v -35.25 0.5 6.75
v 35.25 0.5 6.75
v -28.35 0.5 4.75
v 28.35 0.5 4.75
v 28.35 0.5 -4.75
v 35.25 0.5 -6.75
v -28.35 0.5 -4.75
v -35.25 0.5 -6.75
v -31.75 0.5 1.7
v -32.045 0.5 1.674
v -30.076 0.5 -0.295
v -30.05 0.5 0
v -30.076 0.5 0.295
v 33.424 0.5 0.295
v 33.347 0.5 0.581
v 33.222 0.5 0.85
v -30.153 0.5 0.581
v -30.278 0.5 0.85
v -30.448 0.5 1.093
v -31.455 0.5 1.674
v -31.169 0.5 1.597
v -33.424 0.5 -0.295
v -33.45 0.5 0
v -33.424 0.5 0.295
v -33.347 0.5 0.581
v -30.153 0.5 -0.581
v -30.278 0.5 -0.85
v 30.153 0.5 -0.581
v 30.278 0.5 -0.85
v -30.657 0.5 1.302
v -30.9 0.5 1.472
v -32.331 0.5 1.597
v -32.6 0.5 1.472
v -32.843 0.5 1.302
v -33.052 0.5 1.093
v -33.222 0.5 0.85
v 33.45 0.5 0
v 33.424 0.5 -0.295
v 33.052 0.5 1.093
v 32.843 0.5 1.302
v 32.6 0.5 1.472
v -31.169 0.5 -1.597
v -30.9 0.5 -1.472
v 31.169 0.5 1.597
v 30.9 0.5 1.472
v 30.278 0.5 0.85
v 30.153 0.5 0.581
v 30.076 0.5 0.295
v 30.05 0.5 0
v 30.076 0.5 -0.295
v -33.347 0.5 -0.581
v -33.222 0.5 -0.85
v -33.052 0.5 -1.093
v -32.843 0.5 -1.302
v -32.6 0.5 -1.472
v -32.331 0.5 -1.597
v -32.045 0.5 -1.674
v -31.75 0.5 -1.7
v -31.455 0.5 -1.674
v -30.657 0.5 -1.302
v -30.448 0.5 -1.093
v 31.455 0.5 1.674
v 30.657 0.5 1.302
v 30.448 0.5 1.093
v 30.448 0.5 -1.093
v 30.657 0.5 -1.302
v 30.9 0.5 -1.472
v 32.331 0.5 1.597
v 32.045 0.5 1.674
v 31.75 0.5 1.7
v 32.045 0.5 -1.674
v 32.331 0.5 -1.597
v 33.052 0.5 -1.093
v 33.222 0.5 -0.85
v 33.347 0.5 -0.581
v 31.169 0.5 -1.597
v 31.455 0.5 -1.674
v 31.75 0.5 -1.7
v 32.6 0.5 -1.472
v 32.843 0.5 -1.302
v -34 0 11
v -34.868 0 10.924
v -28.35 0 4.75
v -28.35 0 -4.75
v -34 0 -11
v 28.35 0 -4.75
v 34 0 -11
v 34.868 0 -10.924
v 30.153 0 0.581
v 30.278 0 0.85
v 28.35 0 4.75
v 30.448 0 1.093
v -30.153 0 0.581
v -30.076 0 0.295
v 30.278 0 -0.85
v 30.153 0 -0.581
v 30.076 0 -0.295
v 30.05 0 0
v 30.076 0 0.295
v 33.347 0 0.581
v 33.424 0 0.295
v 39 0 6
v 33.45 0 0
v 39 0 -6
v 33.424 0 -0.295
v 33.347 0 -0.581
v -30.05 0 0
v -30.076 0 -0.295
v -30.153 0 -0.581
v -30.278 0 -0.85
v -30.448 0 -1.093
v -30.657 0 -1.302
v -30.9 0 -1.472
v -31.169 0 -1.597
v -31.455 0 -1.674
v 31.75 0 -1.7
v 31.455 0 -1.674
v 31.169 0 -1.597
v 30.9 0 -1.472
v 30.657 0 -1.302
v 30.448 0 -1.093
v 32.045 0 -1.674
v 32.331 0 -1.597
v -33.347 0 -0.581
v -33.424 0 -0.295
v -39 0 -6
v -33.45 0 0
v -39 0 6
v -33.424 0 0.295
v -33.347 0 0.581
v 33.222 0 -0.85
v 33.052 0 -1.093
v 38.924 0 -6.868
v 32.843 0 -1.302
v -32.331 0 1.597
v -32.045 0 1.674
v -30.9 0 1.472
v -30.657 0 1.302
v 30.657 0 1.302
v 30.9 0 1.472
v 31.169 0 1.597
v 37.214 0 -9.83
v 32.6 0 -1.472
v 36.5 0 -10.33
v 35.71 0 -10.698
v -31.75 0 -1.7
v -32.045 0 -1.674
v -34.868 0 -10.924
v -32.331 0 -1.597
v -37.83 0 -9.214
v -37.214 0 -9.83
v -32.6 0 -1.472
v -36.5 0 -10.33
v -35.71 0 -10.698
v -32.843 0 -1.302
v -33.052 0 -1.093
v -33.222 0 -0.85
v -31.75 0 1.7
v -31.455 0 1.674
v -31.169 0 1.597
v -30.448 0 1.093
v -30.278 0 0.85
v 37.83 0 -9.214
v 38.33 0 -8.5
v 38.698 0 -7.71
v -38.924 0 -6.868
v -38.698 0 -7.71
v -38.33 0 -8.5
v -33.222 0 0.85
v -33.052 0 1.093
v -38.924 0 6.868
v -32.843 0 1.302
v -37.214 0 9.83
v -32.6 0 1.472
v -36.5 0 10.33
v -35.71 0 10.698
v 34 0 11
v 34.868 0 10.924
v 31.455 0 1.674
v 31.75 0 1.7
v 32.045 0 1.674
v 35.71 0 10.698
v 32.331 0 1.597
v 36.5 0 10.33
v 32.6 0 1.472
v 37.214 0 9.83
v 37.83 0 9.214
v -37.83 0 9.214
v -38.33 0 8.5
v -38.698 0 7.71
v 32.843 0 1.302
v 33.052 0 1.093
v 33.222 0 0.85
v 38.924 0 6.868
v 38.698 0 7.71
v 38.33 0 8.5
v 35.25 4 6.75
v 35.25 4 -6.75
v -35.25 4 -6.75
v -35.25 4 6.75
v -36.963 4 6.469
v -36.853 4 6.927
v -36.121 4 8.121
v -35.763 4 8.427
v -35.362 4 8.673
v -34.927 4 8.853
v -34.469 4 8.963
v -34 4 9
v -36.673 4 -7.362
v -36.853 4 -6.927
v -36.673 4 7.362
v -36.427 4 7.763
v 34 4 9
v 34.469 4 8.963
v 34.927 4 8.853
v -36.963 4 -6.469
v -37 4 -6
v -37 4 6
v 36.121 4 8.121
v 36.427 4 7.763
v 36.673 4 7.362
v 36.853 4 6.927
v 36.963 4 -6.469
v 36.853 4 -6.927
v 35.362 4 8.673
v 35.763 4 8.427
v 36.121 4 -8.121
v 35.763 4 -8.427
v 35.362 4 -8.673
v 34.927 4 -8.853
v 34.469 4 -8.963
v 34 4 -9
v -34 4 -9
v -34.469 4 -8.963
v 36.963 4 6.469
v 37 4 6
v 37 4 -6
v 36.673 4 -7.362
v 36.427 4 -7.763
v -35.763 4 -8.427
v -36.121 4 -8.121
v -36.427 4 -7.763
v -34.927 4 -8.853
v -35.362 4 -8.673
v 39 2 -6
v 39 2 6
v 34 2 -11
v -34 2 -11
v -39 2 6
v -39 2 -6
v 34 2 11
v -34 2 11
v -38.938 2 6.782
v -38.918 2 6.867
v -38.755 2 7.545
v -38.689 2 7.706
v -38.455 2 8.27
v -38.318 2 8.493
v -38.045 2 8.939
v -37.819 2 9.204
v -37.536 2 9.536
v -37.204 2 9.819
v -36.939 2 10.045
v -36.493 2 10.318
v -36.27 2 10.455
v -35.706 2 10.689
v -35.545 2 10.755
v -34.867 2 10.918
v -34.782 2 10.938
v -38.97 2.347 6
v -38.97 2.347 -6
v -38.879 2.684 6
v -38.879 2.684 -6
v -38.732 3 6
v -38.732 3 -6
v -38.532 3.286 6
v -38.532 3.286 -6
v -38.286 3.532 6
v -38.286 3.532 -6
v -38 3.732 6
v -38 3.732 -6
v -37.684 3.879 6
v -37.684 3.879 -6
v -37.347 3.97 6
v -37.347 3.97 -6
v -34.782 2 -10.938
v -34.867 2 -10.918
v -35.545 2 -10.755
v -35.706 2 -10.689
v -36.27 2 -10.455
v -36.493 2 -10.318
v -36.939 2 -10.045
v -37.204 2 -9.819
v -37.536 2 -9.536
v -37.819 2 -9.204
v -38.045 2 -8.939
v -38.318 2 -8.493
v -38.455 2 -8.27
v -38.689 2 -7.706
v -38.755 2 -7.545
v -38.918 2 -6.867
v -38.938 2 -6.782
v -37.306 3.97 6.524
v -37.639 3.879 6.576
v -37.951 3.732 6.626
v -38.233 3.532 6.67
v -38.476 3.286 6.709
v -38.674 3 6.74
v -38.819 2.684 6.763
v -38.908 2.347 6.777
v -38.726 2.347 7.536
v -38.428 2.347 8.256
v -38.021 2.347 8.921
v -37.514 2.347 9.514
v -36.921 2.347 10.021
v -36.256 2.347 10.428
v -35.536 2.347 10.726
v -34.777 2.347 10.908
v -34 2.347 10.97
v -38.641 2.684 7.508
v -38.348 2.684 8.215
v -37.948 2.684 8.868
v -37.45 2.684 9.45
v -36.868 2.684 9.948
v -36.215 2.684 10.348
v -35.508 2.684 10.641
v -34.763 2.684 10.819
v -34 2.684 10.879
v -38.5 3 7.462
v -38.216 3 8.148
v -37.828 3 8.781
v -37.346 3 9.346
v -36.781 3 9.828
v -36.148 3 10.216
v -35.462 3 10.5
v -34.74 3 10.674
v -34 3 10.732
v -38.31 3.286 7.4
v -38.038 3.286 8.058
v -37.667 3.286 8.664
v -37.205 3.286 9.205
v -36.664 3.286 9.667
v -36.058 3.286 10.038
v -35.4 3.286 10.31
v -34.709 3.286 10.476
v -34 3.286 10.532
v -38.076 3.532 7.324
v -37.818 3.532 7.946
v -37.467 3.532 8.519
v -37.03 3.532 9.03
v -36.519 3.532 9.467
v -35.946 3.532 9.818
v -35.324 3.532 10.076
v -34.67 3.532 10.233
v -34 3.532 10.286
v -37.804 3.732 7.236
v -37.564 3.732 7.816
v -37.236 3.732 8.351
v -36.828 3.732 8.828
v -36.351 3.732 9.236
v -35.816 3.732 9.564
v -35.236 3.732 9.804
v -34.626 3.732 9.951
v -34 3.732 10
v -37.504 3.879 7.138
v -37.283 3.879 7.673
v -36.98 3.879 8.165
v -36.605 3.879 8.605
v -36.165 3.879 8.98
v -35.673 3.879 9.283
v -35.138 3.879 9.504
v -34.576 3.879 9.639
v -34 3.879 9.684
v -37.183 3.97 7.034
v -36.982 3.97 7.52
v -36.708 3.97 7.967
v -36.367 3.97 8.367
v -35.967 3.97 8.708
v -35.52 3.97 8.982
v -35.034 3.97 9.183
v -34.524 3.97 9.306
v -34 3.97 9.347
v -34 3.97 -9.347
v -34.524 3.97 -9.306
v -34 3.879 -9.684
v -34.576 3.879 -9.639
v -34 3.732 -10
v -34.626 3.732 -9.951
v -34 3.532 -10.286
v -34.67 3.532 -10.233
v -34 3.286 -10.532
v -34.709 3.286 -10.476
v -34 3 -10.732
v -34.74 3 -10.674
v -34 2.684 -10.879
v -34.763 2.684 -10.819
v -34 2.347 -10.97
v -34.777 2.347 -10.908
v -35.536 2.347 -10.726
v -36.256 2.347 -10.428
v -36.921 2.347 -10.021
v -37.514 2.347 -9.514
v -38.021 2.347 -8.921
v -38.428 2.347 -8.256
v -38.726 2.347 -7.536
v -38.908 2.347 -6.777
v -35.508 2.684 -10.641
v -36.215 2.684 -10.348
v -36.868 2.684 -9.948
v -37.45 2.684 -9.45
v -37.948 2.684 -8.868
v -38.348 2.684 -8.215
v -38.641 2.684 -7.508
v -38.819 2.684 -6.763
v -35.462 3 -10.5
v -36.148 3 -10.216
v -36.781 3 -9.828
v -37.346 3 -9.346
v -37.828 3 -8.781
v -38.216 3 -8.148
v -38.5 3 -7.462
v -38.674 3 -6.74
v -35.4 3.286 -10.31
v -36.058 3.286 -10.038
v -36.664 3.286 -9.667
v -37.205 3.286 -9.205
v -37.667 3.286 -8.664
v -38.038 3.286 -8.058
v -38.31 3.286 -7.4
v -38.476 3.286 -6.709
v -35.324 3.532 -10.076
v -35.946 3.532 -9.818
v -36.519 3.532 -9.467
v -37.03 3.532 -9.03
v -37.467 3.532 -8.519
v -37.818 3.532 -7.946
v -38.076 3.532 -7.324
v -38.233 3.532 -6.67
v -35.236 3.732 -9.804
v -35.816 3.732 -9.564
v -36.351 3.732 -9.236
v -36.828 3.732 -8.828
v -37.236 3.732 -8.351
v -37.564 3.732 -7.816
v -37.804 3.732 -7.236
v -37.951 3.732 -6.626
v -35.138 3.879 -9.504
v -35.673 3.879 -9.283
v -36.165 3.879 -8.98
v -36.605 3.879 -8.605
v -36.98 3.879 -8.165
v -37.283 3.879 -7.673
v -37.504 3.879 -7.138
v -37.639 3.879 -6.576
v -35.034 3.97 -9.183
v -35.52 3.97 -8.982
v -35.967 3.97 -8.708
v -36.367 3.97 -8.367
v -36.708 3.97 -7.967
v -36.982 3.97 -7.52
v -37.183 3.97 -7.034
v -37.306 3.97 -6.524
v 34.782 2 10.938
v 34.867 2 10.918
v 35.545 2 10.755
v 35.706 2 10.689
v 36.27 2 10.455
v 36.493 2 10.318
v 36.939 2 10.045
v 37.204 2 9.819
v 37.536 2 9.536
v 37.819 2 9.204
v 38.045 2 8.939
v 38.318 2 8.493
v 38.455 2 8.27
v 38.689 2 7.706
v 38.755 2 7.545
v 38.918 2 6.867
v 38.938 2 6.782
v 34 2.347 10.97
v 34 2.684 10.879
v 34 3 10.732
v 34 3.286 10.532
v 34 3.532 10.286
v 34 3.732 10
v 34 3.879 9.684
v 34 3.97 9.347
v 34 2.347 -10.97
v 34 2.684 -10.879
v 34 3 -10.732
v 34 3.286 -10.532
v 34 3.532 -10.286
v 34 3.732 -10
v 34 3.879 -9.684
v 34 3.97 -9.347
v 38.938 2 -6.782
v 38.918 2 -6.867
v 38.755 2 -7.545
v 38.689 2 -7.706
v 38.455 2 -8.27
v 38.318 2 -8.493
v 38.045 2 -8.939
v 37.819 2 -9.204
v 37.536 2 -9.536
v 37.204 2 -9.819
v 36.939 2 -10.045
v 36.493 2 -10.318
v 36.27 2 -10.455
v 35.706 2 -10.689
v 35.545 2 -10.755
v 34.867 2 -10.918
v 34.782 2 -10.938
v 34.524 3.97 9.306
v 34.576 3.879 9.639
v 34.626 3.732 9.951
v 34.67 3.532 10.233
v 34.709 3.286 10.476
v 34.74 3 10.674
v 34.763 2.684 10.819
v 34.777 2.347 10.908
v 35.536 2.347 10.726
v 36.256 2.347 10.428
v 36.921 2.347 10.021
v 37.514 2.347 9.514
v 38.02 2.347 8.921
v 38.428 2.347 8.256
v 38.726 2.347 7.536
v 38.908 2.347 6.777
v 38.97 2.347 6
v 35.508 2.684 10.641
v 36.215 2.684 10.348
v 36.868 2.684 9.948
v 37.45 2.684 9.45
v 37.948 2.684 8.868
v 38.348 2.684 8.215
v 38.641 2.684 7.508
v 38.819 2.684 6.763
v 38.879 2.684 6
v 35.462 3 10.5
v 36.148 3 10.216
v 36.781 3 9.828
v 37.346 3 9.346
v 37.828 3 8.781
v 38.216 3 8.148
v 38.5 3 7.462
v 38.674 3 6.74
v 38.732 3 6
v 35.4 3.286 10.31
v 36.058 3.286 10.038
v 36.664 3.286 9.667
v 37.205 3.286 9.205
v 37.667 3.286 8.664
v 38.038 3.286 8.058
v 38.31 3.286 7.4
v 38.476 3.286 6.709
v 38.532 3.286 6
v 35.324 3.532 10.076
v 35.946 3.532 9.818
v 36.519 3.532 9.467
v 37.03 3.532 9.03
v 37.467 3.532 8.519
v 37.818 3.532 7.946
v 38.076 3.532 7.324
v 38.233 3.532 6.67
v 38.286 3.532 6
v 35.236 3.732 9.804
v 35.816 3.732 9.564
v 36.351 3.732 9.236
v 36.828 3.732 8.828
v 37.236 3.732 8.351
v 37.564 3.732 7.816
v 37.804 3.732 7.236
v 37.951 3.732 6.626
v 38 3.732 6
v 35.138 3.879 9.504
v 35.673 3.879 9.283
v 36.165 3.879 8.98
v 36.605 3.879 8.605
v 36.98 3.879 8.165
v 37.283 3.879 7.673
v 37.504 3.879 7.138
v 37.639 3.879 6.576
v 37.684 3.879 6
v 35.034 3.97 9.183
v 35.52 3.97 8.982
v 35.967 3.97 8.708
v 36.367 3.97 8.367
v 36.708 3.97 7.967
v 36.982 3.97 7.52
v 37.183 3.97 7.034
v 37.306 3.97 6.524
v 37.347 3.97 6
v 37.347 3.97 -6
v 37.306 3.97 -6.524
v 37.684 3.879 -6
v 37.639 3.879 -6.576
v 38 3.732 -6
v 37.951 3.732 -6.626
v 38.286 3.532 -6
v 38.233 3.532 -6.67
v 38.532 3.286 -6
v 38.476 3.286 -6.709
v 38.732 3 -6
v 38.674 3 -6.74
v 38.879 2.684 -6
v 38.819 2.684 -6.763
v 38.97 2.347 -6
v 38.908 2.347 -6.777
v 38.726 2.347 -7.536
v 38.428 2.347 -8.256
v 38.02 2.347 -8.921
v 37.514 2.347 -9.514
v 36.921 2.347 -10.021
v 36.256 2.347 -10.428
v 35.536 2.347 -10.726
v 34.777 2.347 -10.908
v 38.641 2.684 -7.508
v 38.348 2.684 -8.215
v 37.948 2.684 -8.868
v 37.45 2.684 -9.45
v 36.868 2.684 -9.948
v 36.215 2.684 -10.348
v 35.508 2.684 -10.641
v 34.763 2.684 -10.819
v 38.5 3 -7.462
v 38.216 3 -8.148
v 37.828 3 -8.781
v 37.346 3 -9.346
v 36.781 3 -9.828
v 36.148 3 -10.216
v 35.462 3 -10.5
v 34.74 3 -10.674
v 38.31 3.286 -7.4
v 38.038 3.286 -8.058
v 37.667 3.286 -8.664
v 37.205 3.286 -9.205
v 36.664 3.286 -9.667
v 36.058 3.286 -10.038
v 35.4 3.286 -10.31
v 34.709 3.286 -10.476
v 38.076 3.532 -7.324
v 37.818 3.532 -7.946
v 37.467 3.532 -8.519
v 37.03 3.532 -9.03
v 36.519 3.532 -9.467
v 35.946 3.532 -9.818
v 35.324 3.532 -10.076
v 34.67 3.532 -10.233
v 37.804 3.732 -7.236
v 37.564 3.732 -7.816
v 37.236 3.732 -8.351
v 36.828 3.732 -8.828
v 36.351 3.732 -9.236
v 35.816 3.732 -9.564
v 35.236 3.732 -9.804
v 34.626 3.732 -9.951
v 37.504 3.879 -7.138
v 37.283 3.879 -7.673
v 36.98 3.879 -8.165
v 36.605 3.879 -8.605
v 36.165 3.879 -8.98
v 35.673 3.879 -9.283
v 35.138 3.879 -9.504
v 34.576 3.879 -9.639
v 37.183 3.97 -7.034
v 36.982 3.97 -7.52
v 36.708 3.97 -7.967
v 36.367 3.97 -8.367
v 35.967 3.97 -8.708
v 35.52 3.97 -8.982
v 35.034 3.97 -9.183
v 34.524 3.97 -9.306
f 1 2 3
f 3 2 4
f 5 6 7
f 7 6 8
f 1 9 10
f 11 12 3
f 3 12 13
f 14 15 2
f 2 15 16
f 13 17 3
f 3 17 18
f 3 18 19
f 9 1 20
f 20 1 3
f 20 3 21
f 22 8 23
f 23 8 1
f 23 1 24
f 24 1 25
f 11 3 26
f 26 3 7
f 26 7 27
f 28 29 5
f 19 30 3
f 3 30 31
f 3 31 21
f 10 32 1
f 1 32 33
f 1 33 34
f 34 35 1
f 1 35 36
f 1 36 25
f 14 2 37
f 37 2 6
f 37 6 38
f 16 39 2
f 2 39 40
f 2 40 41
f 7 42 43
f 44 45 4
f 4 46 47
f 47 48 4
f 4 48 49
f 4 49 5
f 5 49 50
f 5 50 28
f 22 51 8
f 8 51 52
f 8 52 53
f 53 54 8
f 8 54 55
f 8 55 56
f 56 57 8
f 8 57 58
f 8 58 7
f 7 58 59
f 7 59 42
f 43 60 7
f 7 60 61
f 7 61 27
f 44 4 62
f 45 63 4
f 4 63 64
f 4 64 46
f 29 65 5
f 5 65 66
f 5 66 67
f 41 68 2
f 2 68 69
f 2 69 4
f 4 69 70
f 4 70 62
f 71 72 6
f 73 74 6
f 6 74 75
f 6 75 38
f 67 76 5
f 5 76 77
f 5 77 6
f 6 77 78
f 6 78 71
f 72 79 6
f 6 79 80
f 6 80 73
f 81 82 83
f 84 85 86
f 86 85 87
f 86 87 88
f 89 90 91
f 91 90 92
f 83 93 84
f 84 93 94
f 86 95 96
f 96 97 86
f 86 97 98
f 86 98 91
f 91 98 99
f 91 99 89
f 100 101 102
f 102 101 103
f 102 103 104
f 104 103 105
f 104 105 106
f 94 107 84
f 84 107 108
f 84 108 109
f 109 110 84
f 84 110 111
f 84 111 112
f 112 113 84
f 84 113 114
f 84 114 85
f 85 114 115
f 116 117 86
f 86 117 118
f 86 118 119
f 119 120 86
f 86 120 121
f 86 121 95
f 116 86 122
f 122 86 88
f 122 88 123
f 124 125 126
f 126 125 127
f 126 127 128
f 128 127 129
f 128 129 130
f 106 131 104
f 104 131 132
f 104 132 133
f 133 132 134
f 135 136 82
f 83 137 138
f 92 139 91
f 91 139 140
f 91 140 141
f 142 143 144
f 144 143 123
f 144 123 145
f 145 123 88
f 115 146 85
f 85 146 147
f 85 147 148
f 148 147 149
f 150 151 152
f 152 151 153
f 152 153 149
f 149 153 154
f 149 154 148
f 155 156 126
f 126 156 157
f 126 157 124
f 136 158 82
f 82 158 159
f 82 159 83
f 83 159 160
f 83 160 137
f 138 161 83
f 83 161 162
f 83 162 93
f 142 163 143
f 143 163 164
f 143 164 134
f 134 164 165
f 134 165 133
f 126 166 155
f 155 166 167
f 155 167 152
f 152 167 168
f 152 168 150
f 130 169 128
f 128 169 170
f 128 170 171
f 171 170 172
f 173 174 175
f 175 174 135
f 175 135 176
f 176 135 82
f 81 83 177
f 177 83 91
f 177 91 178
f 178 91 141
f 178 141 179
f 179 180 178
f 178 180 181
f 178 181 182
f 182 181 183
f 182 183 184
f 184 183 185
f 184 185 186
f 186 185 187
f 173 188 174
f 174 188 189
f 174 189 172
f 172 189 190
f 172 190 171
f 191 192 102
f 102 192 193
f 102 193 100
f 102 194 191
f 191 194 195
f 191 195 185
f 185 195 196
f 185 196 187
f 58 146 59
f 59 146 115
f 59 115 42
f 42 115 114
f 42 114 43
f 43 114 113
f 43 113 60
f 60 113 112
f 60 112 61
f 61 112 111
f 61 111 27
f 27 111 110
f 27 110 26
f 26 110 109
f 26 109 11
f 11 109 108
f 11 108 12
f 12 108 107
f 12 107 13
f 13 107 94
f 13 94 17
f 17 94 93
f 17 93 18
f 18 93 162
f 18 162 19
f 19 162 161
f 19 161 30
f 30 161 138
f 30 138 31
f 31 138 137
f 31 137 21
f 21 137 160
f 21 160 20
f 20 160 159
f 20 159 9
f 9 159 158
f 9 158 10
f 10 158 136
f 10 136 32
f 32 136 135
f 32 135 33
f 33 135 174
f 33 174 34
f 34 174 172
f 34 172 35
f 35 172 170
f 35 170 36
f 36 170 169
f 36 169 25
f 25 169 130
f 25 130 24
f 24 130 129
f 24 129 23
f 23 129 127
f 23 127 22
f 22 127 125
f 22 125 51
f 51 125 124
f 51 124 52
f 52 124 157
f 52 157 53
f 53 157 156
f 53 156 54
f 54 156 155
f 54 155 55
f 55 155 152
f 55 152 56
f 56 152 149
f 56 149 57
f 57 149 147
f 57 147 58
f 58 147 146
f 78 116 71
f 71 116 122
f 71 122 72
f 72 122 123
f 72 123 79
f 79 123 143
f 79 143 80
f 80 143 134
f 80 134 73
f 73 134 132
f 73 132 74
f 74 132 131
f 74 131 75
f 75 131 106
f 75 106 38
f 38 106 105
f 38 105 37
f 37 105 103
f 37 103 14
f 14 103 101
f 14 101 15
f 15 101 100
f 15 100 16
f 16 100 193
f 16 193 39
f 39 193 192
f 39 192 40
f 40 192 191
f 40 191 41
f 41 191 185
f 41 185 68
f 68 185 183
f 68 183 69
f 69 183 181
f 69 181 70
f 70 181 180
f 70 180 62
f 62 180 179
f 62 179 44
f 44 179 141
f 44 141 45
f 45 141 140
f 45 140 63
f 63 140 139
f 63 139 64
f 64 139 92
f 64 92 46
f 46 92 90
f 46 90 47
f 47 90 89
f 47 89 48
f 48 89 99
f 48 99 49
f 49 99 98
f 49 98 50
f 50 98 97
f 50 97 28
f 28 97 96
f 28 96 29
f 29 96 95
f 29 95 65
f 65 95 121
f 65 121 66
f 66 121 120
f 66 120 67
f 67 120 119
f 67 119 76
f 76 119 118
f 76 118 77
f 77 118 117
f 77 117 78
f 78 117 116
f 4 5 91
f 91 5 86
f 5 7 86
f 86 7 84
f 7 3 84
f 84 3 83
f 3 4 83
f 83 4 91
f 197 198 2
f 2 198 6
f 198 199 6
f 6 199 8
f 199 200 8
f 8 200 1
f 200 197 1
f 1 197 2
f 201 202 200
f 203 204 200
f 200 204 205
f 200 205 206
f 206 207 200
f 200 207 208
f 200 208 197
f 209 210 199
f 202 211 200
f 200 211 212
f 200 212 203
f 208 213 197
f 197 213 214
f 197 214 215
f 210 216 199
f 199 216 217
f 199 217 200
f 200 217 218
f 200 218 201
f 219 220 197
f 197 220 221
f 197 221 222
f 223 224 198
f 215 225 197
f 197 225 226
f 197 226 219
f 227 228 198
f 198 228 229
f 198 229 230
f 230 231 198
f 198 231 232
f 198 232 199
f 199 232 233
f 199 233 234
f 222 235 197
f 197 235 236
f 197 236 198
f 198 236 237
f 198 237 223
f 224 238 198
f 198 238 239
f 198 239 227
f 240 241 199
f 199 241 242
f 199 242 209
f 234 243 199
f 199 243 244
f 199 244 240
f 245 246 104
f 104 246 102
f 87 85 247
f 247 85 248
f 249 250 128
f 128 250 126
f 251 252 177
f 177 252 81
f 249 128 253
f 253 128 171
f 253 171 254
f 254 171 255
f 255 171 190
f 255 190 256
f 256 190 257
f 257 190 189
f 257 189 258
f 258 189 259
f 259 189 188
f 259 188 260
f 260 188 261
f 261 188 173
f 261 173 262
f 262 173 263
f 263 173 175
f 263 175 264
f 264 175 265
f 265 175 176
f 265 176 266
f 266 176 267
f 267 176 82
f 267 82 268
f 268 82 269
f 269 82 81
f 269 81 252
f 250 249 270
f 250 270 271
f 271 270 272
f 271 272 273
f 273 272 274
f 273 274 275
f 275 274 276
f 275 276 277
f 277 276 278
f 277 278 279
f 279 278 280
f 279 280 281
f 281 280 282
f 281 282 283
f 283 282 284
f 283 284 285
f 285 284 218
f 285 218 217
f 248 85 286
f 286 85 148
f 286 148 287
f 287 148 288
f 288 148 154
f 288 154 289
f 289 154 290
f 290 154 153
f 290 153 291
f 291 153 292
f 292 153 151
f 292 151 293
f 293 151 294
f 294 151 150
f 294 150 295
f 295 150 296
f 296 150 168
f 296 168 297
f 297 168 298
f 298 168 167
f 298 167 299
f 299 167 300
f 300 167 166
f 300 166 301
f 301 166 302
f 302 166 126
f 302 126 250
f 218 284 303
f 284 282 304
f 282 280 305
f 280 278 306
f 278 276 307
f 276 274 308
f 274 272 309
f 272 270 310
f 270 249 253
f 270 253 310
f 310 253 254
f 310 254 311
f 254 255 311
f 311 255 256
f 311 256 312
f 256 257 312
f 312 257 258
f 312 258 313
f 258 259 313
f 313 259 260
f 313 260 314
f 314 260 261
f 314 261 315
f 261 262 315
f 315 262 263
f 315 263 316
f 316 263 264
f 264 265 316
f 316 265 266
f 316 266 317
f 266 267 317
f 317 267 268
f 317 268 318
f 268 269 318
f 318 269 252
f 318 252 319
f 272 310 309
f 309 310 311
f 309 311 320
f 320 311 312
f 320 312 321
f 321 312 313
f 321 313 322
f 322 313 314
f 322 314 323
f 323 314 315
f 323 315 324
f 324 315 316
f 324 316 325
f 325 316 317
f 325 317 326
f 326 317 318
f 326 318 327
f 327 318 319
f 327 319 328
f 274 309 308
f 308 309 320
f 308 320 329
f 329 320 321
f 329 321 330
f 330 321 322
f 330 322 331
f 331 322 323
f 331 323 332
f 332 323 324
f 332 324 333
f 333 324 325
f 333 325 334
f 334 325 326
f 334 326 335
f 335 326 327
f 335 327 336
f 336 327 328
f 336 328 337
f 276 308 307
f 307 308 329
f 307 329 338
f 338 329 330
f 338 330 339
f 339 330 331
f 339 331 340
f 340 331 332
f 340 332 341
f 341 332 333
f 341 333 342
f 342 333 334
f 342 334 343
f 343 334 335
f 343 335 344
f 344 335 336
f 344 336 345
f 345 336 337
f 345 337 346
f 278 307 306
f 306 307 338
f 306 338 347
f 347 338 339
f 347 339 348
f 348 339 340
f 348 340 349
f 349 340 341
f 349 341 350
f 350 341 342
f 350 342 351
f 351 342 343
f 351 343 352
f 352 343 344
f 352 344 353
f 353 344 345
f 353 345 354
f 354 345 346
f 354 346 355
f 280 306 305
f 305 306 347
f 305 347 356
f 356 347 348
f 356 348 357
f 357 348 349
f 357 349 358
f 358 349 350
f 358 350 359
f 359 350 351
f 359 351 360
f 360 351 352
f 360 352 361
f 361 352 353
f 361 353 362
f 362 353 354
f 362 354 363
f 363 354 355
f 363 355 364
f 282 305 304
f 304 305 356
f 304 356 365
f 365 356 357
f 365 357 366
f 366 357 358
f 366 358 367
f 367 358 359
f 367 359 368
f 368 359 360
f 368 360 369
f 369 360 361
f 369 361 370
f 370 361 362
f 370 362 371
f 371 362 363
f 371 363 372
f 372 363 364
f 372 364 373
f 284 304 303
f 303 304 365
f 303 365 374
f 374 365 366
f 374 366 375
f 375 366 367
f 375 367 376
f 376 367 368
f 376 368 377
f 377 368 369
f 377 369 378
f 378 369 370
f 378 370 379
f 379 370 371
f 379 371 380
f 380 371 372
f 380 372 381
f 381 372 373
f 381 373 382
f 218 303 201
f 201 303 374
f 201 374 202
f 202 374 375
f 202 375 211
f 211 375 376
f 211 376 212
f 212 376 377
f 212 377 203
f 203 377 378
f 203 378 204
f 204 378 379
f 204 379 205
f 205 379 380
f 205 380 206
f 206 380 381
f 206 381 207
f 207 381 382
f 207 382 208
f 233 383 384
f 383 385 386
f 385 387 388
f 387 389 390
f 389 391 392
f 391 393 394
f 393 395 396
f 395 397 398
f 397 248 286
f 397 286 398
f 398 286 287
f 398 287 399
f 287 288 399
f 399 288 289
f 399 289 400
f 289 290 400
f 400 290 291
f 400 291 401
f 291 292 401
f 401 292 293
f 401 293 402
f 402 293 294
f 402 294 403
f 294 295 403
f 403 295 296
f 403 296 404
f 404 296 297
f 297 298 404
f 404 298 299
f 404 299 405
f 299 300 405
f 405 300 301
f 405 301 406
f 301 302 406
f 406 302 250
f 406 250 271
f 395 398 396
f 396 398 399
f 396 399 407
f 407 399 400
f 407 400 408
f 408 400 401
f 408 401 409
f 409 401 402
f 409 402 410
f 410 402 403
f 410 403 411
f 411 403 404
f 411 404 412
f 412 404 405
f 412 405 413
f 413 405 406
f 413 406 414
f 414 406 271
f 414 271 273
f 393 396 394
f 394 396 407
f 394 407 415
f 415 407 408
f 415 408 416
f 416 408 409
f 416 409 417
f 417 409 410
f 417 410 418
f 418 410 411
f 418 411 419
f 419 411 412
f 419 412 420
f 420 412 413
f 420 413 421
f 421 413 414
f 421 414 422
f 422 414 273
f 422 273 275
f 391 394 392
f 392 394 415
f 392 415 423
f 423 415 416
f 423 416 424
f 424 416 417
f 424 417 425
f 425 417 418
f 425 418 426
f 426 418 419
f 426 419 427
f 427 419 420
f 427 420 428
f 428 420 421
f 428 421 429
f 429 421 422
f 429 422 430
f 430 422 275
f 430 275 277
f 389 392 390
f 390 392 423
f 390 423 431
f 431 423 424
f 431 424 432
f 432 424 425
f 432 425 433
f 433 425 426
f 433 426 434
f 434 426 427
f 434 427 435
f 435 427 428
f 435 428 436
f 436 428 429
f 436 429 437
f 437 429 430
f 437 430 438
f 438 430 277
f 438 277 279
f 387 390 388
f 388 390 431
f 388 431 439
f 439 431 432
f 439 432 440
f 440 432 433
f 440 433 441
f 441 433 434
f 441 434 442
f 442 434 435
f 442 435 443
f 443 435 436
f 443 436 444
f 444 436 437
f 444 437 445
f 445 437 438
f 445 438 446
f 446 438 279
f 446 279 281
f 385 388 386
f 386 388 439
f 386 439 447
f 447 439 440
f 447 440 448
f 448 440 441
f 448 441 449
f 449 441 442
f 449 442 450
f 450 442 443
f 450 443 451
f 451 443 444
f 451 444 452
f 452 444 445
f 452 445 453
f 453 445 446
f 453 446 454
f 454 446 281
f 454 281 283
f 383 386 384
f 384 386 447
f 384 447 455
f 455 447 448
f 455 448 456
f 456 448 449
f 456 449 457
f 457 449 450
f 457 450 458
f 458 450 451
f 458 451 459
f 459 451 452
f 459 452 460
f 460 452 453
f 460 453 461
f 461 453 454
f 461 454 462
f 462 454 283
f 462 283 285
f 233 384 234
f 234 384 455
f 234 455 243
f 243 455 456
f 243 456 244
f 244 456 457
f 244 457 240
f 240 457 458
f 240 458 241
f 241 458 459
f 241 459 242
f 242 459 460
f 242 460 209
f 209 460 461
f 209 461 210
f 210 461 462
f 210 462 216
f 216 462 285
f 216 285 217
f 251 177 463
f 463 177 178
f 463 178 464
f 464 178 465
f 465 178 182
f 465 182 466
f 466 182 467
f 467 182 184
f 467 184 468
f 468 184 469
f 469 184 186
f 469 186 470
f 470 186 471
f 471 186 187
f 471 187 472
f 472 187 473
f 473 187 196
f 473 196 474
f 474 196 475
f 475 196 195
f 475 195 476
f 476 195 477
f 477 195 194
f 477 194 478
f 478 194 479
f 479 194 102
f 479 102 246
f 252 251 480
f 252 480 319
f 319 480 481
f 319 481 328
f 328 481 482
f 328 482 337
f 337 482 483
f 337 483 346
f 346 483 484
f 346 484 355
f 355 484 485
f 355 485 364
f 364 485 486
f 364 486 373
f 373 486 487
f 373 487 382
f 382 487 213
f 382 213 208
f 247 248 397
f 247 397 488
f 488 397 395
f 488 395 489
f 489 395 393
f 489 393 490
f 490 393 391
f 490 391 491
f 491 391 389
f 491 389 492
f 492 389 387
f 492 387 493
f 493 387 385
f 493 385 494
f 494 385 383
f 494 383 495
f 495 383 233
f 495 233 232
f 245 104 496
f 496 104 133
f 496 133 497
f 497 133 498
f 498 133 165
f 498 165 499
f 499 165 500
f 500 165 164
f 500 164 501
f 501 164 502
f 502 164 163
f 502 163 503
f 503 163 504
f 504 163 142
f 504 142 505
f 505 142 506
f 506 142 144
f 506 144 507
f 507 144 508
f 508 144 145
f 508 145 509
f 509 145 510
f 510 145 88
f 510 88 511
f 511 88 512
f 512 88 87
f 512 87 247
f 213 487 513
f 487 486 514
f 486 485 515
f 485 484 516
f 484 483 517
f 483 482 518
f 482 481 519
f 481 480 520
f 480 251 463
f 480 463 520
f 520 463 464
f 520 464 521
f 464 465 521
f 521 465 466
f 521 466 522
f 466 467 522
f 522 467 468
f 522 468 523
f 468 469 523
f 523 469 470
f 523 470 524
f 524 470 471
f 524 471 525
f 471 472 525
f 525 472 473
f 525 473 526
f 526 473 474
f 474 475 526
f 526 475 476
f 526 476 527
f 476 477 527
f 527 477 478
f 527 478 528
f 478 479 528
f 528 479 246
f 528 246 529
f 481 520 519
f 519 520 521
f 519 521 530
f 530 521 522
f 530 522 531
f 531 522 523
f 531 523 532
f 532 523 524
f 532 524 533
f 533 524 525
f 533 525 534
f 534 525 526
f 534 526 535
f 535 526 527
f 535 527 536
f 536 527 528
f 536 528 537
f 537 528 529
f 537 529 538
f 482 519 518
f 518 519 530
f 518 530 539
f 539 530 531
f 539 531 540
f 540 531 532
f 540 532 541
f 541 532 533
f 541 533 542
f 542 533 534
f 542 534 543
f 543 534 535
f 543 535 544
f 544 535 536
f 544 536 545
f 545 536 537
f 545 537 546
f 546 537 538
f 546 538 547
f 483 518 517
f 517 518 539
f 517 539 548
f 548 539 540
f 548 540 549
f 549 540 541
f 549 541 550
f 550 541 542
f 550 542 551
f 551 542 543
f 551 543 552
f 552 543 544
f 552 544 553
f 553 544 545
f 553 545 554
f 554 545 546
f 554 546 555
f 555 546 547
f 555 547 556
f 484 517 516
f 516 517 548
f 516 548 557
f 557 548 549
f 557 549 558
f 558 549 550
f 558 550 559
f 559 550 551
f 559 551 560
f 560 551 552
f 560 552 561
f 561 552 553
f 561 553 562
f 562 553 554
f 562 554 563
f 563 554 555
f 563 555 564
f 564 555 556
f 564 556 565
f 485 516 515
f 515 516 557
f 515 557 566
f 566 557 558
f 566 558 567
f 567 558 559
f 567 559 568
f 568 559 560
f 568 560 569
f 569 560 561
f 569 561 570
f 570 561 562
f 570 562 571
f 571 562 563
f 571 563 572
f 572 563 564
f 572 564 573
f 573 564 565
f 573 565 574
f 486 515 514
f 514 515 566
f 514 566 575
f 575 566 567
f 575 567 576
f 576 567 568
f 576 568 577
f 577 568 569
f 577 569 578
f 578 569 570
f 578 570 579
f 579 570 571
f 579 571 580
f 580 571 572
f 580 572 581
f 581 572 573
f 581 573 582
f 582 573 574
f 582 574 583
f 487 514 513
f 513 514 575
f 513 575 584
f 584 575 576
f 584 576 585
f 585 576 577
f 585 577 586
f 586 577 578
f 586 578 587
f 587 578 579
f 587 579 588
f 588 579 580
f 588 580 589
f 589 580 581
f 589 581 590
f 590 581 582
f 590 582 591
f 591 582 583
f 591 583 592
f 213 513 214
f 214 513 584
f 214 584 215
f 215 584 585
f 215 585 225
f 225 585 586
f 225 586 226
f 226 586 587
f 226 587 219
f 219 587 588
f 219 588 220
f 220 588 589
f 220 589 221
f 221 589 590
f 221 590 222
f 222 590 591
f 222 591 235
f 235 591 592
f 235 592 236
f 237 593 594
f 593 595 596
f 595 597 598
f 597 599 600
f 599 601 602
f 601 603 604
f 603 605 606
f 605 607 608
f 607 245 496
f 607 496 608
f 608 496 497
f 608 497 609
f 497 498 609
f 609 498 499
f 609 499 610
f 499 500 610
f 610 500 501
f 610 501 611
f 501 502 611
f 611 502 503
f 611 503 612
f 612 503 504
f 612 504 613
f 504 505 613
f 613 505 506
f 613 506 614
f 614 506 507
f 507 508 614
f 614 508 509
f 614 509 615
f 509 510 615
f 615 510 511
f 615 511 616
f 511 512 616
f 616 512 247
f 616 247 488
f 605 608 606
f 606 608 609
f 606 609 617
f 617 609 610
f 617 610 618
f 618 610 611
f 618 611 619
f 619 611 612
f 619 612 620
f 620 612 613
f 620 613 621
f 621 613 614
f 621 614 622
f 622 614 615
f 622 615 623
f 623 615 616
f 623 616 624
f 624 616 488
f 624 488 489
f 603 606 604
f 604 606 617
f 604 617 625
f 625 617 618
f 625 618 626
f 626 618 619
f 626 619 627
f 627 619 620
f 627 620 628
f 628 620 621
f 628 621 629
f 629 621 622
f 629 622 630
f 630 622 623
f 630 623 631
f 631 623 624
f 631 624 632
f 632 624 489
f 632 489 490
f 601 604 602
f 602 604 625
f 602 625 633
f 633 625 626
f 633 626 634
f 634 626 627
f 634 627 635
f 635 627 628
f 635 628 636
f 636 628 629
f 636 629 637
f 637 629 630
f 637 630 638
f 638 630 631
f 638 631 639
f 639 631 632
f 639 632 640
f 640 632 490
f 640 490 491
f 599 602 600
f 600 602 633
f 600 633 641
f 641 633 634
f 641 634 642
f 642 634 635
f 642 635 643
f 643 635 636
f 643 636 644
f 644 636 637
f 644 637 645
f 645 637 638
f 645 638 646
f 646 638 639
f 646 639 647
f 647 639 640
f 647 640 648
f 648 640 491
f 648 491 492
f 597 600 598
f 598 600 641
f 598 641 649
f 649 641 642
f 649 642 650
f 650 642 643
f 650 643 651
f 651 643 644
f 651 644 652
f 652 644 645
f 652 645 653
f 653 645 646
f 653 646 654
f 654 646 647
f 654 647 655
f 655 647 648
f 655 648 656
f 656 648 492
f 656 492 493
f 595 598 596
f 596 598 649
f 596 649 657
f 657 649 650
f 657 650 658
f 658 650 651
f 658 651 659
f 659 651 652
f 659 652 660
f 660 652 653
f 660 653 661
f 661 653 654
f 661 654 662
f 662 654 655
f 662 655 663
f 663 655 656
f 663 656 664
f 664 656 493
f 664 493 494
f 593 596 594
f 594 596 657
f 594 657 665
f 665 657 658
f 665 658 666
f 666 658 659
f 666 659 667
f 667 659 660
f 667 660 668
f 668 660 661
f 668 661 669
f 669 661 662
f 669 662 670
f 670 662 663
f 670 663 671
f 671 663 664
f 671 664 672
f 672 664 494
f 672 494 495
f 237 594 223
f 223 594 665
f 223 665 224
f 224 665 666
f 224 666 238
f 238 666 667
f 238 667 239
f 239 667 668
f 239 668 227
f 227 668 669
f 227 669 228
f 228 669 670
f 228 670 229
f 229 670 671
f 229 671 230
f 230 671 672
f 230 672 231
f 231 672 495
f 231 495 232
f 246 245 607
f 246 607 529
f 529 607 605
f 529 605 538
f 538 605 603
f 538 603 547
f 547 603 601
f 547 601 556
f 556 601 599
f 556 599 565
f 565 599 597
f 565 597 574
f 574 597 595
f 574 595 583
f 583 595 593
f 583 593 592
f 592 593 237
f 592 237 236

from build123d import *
from OCP.BRepFilletAPI import BRepFilletAPI_MakeFillet

# Parameters (mm, degrees)
SKETCH2_W           = 72
SKETCH2_H           = 18
SKETCH2_R           = 1.7
SKETCH2_W_2         = 56.7
SKETCH2_H_2         = 9.5
BOSS_EXTRUDE2_DEPTH = 0.5
SKETCH3_W           = 78
SKETCH3_H           = 22
SKETCH3_W_2         = 70.5
SKETCH3_H_2         = 13.5
BOSS_EXTRUDE3_DEPTH = 4
FILLET1_R1          = 5
FILLET1_R2          = 2


with BuildPart() as part:
    # Sketch2 → Boss-Extrude2 (new body)
    with BuildSketch(Plane(origin=(0, 0, 0), x_dir=(1, 0, 0), z_dir=(0, 1, 0))):
        Rectangle(SKETCH2_W, SKETCH2_H)
        with Locations((-31.75, 0)):
            Circle(SKETCH2_R, mode=Mode.SUBTRACT)
        with Locations((31.75, 0)):
            Circle(SKETCH2_R, mode=Mode.SUBTRACT)
        Rectangle(SKETCH2_W_2, SKETCH2_H_2, mode=Mode.SUBTRACT)
    extrude(amount=BOSS_EXTRUDE2_DEPTH)

    # Sketch3 → Boss-Extrude3 (add)
    with BuildSketch(Plane(origin=(0, 0, 0), x_dir=(1, 0, 0), z_dir=(0, 1, 0))):
        Rectangle(SKETCH3_W, SKETCH3_H)
        Rectangle(SKETCH3_W_2, SKETCH3_H_2, mode=Mode.SUBTRACT)
    extrude(amount=BOSS_EXTRUDE3_DEPTH)

    # Fillet1: one fillet with a radius per group of edges: ONE call of the kernel's fillet builder (fillet() takes one radius for all edges)
    fillet1_edges_1 = [part.edges().sort_by_distance(p)[0] for p in [
        (-39, 2, -11),
        (-39, 2, 11),
        (39, 2, 11),
        (39, 2, -11),
    ]]
    fillet1_edges_2 = [part.edges().sort_by_distance(p)[0] for p in [
        (0, 4, -11),
        (-39, 4, 0),
        (0, 4, 11),
        (39, 4, 0),
    ]]
    fillet1 = BRepFilletAPI_MakeFillet(part.part.solid().wrapped)
    for e in fillet1_edges_1:
        fillet1.Add(FILLET1_R1, e.wrapped)
    for e in fillet1_edges_2:
        fillet1.Add(FILLET1_R2, e.wrapped)
    add(Compound.cast(fillet1.Shape()), mode=Mode.REPLACE)


solid = part.part
